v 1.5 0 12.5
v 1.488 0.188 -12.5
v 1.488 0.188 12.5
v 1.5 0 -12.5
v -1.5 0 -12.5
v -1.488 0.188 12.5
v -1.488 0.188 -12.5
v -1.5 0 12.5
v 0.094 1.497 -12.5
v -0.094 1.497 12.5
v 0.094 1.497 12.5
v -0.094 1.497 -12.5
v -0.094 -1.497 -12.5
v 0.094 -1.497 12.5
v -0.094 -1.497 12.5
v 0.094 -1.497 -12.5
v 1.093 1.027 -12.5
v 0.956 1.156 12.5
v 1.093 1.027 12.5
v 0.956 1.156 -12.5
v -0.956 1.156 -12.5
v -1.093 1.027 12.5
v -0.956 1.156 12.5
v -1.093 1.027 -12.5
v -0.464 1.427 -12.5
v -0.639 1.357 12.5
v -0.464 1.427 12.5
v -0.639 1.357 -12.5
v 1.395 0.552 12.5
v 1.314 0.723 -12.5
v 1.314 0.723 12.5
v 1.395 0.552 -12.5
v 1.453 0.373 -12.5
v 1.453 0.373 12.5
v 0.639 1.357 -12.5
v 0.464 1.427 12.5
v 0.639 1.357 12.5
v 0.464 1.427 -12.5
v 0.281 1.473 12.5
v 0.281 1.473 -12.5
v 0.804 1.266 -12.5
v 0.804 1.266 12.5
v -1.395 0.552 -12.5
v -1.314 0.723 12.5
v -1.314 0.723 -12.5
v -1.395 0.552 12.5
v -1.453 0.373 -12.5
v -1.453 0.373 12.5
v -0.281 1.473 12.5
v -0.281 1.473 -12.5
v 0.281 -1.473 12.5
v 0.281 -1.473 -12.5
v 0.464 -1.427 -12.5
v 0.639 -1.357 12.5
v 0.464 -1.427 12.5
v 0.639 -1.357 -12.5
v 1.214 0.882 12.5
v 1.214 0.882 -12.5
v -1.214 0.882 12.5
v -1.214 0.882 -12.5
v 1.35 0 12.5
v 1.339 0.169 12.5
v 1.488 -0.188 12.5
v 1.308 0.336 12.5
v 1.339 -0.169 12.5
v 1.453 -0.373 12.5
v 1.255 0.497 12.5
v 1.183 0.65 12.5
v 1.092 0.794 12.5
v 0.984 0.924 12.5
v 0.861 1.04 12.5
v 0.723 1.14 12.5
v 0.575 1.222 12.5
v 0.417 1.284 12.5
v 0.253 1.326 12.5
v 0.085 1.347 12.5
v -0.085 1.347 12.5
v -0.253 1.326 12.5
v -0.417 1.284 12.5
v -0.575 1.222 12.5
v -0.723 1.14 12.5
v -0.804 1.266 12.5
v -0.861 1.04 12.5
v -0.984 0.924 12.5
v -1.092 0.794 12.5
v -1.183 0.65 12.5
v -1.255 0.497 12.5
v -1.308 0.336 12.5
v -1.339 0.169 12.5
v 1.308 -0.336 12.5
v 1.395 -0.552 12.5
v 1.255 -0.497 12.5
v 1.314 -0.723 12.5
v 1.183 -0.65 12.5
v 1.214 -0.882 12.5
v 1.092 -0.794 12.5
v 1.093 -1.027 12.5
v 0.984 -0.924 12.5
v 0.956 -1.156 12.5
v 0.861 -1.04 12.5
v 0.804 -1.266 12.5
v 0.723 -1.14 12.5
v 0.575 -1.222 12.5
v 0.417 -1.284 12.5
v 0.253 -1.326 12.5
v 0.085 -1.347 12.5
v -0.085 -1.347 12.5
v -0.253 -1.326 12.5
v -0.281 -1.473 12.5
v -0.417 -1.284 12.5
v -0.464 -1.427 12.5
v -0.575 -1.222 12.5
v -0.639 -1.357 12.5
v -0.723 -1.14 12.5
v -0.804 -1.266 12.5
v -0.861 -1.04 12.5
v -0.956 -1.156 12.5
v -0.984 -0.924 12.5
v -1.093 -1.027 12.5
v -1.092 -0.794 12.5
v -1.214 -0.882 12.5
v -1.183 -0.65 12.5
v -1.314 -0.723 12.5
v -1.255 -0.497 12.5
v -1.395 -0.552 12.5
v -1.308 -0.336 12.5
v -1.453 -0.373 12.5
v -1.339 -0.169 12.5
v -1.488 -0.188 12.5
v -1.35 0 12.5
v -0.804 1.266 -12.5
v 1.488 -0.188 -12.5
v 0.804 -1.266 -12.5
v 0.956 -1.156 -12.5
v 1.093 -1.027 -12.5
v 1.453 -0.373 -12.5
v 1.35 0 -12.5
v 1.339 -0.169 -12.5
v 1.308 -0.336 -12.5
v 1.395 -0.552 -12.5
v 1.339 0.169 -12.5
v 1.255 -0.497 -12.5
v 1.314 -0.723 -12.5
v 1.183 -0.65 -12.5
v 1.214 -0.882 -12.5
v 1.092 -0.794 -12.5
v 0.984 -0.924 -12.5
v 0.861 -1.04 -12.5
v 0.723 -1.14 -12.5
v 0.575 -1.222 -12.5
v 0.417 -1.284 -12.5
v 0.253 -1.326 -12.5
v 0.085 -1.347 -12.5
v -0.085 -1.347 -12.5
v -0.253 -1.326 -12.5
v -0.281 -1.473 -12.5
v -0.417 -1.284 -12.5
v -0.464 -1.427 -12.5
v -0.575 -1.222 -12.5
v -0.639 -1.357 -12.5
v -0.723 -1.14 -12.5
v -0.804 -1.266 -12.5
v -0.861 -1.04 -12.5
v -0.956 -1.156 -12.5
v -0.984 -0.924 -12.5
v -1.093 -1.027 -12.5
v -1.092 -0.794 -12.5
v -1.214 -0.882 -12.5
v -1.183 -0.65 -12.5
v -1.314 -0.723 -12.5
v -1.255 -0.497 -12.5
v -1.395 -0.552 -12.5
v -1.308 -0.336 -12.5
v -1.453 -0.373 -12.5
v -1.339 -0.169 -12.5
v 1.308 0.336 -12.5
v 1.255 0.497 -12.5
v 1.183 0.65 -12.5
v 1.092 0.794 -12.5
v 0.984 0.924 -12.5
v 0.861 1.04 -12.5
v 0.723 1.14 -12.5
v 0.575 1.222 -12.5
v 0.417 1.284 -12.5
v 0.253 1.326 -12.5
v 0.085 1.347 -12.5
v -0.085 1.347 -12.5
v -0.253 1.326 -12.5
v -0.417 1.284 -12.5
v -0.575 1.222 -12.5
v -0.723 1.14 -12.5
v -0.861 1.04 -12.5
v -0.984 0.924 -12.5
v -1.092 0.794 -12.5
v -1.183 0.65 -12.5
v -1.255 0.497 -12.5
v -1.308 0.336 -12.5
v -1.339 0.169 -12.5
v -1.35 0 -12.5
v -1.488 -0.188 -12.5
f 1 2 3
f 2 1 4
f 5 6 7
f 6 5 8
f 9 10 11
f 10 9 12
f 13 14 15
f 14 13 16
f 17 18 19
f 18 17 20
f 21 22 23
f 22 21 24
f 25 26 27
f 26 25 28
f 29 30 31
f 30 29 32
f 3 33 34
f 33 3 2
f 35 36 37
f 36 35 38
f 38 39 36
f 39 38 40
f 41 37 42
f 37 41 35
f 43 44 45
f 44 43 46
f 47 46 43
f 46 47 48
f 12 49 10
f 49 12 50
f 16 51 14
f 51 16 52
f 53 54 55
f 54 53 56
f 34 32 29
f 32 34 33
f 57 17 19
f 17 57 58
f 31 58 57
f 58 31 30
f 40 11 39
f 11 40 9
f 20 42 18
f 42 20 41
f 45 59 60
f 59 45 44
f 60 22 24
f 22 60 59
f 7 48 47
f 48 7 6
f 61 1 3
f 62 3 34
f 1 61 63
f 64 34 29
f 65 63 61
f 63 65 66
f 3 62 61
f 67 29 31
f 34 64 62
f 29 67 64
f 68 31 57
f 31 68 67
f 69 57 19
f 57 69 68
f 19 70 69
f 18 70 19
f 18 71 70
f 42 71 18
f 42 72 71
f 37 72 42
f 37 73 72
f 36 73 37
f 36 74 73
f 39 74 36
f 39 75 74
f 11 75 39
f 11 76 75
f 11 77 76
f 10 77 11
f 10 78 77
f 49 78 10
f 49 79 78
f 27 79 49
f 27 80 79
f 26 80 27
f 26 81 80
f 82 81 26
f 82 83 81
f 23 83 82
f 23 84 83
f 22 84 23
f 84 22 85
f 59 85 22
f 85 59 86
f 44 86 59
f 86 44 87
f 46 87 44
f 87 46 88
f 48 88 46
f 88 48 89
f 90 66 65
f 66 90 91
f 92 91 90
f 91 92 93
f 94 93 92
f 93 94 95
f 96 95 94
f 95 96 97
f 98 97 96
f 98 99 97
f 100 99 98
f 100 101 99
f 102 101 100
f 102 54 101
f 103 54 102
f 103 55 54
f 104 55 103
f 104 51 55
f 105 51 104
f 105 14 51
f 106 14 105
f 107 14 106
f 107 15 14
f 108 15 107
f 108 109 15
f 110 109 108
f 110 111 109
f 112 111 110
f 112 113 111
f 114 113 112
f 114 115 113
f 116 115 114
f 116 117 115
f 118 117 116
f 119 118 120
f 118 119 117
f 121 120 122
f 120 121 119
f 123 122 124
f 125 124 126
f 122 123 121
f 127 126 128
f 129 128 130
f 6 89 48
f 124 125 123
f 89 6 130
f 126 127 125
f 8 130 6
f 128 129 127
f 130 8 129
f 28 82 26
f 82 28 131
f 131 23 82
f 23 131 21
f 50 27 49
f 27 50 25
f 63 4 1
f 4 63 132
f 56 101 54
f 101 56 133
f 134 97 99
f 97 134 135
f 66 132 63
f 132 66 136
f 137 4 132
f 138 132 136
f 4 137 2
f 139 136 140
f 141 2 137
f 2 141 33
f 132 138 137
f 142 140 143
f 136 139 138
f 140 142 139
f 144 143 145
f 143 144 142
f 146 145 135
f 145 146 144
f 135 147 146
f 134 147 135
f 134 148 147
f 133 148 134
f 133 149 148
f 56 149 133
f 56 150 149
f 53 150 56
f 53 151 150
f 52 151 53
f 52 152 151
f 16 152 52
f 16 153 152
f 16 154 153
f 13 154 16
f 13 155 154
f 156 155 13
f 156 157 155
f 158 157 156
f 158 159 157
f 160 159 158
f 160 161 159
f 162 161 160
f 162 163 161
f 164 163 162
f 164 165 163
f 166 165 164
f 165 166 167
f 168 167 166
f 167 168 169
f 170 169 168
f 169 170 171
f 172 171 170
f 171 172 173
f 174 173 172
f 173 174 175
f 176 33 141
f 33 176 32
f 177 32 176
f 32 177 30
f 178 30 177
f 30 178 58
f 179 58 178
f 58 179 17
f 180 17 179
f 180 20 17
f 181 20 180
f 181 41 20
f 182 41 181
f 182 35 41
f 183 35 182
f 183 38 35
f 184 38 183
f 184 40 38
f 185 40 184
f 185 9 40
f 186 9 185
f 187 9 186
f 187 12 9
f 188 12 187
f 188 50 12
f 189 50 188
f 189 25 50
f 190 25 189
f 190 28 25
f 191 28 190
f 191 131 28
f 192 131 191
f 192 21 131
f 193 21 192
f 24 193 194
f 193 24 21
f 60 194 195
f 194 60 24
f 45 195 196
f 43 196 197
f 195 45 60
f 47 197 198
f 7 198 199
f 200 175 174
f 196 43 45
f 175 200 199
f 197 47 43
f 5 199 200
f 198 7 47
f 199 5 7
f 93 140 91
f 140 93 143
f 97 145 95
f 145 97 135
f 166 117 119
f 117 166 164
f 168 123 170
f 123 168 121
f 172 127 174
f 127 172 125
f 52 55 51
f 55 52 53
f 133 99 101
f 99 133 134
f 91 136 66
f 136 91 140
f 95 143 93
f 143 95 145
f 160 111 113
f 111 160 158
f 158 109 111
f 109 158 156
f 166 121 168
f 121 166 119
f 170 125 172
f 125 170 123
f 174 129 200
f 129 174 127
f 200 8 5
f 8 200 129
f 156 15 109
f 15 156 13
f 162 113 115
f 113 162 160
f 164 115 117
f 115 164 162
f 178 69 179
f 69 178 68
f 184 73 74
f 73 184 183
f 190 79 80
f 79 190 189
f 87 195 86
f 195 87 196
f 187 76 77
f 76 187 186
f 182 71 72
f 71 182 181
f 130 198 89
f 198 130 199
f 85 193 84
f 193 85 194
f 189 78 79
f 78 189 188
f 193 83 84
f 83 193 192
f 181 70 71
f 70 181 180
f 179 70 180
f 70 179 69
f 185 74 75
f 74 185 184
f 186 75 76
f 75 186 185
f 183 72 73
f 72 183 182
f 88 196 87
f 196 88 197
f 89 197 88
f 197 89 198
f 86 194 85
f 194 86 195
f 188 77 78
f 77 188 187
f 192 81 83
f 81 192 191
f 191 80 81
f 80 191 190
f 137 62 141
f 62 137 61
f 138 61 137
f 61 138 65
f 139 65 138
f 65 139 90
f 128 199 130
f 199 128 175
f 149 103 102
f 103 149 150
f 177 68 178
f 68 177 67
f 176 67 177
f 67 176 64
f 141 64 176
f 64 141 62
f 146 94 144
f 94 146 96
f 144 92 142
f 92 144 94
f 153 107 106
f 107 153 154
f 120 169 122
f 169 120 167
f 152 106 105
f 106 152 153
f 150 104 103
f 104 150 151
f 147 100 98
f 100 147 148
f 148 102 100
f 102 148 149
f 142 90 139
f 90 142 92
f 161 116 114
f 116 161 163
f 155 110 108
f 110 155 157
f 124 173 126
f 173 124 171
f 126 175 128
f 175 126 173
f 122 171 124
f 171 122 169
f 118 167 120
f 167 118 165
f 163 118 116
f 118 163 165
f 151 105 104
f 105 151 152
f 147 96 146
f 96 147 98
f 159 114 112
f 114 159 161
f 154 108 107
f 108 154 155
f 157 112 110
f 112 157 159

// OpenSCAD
$fn = 50;


difference() {
	union() {
		translate(v = [0, 0, -12.5000000000]) {
			cylinder(h = 25, r = 1.5000000000);
		}
	}
	union() {
		translate(v = [0, 0, -100.0000000000]) {
			cylinder(h = 200, r = 1.3500000000);
		}
	}
}
